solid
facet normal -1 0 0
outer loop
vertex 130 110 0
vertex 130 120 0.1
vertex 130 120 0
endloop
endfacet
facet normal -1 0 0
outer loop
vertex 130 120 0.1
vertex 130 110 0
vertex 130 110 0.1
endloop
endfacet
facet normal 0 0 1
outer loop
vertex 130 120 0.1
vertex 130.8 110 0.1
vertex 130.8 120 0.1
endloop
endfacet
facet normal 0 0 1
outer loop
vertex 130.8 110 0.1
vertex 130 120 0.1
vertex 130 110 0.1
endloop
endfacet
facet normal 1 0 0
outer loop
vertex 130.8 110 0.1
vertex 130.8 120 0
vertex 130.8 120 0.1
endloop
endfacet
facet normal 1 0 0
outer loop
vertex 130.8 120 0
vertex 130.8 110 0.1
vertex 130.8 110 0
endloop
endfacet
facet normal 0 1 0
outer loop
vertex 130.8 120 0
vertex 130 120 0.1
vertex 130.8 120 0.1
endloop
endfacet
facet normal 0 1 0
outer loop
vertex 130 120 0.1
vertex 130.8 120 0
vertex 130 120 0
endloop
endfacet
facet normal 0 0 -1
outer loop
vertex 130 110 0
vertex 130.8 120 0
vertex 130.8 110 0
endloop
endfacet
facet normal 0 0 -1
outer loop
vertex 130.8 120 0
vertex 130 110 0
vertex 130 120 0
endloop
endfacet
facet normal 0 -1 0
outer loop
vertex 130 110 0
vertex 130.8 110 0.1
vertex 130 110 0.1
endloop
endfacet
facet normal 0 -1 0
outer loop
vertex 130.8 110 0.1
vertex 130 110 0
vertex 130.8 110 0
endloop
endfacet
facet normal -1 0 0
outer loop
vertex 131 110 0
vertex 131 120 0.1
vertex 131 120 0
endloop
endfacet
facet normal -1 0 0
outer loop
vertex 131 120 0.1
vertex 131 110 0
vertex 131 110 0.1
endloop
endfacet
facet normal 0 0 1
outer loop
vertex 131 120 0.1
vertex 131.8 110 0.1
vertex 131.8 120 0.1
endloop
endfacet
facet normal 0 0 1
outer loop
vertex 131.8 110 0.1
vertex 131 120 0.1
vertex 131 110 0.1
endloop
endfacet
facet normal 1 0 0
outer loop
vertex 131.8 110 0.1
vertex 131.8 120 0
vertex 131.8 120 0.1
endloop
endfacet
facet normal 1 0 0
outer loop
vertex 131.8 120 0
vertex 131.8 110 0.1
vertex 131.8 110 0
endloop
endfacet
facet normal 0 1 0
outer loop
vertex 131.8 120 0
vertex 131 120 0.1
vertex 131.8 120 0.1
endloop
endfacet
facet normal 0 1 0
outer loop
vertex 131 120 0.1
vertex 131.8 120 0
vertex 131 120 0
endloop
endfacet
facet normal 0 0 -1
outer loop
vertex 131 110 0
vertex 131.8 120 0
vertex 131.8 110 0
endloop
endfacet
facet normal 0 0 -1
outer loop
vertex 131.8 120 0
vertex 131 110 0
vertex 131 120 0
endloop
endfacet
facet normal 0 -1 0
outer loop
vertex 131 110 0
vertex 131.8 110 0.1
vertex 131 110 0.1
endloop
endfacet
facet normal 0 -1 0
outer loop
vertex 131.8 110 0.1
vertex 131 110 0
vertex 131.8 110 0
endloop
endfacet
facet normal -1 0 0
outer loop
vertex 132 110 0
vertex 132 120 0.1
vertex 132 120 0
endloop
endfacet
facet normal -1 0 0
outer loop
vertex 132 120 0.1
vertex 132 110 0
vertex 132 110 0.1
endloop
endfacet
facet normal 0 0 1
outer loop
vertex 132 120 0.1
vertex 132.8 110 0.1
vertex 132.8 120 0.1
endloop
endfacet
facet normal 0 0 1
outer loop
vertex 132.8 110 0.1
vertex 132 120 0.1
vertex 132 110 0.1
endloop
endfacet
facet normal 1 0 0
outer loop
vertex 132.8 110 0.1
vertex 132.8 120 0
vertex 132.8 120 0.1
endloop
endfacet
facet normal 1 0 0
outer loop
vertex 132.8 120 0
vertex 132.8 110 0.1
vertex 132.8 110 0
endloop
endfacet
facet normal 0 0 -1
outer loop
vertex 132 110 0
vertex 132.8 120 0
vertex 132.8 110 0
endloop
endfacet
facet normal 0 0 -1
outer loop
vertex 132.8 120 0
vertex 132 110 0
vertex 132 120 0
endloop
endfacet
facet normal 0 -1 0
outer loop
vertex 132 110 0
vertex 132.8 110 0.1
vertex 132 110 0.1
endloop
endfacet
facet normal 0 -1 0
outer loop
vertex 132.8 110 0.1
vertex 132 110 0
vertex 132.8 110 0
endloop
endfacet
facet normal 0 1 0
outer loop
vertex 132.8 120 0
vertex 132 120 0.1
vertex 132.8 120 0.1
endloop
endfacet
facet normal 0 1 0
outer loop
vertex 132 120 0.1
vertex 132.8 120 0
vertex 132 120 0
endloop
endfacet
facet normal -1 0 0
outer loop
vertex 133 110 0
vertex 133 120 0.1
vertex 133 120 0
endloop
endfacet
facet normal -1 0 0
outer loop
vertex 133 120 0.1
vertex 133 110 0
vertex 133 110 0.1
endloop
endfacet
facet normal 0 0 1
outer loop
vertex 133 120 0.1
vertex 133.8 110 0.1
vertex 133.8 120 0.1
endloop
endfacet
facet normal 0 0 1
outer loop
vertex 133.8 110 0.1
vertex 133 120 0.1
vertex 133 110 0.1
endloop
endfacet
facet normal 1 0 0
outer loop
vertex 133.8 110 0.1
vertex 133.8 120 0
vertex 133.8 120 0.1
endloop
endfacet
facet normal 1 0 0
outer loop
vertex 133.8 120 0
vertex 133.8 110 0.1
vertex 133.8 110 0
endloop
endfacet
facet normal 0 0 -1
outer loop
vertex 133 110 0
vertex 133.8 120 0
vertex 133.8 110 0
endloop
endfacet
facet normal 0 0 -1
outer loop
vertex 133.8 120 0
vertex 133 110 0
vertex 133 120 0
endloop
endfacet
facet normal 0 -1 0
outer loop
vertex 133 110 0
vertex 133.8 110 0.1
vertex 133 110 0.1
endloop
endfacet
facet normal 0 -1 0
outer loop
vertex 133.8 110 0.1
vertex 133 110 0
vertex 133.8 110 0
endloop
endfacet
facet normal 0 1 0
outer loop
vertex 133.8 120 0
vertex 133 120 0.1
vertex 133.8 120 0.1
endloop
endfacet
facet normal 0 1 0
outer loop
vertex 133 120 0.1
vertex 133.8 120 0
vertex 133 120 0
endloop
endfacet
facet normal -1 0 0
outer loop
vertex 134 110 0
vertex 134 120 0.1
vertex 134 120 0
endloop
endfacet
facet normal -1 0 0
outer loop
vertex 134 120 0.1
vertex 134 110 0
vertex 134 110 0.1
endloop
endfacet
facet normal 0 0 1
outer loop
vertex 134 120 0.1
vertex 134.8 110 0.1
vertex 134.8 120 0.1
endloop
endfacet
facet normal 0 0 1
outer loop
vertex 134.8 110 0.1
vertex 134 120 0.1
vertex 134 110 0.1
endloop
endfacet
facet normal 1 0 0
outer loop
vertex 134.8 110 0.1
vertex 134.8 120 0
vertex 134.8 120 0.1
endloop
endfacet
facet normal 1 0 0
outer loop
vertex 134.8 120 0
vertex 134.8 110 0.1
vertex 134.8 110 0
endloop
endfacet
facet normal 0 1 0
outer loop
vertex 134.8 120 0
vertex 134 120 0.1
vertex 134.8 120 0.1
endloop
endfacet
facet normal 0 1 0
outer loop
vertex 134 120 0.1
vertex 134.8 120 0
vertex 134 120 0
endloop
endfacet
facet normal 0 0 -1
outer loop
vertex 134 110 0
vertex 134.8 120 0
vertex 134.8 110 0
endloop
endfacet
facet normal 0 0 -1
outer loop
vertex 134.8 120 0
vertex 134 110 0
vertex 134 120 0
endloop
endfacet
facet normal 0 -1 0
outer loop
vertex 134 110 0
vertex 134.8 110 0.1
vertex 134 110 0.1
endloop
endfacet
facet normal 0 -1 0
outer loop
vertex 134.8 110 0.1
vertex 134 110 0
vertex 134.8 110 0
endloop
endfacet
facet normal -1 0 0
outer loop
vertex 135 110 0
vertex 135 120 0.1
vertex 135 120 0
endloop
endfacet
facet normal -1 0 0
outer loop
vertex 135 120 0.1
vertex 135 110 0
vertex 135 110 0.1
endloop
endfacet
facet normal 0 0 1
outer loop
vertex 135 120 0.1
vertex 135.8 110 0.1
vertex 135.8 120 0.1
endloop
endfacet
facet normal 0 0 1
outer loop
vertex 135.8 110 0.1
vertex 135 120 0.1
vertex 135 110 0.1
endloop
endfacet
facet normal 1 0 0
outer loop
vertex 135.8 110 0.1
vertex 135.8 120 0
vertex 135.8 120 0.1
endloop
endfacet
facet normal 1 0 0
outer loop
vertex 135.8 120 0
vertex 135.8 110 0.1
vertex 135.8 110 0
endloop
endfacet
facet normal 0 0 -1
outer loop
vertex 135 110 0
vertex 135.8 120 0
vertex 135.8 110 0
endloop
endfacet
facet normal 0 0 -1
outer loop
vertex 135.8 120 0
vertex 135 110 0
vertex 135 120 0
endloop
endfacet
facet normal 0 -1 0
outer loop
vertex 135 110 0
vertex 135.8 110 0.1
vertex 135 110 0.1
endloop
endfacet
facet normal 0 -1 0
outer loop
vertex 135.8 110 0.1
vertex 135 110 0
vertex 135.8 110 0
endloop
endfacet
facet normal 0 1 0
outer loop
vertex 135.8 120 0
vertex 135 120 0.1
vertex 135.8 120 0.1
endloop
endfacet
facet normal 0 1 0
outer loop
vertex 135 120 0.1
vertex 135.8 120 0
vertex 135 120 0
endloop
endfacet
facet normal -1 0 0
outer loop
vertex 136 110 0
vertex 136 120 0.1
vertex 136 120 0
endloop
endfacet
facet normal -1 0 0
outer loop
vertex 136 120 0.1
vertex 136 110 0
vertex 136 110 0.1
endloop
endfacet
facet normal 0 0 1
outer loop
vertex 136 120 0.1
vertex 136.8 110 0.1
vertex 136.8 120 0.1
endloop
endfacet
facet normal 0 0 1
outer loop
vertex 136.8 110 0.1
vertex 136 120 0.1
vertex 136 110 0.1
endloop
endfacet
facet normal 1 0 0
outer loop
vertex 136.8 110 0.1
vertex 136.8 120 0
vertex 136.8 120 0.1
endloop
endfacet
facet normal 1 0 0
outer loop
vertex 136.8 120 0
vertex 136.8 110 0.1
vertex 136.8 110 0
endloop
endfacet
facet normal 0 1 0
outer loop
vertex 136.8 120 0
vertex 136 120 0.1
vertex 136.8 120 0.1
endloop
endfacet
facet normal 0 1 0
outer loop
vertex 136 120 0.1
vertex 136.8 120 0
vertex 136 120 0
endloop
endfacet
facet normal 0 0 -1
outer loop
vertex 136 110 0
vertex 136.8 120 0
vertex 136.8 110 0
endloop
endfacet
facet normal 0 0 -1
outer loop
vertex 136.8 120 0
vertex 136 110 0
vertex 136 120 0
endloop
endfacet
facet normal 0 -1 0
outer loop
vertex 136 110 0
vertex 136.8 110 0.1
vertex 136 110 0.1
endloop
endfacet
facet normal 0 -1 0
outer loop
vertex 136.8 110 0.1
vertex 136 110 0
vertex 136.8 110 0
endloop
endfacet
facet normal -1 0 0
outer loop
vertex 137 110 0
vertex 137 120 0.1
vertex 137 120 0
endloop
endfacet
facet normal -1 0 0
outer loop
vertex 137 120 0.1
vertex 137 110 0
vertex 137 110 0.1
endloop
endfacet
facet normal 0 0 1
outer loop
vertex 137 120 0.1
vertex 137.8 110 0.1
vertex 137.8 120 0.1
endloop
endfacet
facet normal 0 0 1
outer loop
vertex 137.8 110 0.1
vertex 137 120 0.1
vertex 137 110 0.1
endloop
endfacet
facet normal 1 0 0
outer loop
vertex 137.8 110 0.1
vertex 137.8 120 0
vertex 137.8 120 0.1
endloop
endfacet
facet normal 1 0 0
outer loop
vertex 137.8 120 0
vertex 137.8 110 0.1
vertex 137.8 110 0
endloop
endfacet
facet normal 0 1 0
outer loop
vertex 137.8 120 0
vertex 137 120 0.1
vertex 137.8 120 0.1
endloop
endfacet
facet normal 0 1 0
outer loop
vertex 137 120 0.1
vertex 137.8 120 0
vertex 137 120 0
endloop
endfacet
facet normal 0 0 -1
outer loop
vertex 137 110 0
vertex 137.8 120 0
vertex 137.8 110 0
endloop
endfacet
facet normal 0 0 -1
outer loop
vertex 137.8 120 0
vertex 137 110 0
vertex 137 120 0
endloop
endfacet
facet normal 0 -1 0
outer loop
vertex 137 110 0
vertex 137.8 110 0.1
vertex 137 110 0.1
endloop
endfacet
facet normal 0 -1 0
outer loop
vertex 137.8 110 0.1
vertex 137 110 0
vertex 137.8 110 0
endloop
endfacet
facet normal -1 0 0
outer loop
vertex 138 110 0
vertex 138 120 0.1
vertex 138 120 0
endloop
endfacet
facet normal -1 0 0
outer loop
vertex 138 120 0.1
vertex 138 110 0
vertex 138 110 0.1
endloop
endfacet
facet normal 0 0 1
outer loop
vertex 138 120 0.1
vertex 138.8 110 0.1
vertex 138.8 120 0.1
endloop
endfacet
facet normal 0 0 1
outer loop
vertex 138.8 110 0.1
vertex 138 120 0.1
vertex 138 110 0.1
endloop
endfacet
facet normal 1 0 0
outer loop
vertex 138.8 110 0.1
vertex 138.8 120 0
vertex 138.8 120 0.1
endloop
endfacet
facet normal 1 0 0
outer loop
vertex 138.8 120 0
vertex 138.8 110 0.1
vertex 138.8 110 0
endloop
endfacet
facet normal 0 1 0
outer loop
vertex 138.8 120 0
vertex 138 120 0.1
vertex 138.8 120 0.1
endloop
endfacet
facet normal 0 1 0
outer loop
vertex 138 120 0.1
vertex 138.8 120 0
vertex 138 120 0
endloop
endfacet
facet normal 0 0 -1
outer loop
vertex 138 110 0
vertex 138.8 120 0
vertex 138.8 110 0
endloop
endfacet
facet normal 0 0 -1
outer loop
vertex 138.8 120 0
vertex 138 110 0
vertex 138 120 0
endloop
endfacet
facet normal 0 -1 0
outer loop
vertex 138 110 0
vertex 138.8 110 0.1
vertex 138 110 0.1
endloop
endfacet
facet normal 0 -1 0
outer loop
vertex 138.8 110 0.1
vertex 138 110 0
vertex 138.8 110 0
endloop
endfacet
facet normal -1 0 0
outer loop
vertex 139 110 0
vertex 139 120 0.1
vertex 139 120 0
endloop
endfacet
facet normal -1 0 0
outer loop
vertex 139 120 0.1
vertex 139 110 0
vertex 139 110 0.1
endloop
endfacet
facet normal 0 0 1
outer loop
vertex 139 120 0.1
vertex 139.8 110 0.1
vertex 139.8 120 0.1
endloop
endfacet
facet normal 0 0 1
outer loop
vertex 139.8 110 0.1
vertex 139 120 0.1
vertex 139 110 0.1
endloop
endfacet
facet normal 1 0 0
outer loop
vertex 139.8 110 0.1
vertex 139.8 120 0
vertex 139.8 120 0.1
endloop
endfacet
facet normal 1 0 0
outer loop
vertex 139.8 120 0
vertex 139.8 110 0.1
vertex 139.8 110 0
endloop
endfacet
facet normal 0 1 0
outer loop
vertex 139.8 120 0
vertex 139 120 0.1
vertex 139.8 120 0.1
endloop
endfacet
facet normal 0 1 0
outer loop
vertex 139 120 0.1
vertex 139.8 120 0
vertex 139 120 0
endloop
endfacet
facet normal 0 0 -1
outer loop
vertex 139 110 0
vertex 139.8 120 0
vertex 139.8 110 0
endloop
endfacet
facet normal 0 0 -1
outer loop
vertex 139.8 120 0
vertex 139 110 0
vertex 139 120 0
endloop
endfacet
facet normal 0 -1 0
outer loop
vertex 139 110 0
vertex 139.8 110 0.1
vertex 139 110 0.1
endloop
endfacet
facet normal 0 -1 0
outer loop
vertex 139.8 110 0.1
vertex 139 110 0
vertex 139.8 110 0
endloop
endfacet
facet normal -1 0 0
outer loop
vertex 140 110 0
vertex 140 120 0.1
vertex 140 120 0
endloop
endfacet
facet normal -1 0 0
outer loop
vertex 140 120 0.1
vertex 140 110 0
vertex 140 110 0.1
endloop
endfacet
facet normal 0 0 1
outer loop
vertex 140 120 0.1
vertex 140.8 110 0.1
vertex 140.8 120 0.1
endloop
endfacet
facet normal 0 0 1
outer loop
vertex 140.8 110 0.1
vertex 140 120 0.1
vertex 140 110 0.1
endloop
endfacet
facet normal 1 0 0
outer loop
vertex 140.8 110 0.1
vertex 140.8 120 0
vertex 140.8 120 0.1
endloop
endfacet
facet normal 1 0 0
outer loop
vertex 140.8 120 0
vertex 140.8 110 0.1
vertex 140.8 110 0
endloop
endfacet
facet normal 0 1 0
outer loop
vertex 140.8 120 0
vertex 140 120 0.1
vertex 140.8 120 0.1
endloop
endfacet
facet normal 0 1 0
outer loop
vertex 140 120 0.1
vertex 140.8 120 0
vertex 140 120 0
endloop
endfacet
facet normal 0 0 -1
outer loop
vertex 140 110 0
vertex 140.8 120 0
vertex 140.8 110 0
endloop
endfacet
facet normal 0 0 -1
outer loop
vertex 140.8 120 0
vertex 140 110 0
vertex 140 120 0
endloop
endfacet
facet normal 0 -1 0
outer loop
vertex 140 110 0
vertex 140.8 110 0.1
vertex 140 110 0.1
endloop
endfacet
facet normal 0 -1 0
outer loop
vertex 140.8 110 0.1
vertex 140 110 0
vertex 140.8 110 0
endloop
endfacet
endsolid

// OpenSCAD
translate([10+120,10+100,0])
        for (i = [0 : 10]){
            translate([i,0,0])
                cube(size = [0.8,10,0.1]);
    }
